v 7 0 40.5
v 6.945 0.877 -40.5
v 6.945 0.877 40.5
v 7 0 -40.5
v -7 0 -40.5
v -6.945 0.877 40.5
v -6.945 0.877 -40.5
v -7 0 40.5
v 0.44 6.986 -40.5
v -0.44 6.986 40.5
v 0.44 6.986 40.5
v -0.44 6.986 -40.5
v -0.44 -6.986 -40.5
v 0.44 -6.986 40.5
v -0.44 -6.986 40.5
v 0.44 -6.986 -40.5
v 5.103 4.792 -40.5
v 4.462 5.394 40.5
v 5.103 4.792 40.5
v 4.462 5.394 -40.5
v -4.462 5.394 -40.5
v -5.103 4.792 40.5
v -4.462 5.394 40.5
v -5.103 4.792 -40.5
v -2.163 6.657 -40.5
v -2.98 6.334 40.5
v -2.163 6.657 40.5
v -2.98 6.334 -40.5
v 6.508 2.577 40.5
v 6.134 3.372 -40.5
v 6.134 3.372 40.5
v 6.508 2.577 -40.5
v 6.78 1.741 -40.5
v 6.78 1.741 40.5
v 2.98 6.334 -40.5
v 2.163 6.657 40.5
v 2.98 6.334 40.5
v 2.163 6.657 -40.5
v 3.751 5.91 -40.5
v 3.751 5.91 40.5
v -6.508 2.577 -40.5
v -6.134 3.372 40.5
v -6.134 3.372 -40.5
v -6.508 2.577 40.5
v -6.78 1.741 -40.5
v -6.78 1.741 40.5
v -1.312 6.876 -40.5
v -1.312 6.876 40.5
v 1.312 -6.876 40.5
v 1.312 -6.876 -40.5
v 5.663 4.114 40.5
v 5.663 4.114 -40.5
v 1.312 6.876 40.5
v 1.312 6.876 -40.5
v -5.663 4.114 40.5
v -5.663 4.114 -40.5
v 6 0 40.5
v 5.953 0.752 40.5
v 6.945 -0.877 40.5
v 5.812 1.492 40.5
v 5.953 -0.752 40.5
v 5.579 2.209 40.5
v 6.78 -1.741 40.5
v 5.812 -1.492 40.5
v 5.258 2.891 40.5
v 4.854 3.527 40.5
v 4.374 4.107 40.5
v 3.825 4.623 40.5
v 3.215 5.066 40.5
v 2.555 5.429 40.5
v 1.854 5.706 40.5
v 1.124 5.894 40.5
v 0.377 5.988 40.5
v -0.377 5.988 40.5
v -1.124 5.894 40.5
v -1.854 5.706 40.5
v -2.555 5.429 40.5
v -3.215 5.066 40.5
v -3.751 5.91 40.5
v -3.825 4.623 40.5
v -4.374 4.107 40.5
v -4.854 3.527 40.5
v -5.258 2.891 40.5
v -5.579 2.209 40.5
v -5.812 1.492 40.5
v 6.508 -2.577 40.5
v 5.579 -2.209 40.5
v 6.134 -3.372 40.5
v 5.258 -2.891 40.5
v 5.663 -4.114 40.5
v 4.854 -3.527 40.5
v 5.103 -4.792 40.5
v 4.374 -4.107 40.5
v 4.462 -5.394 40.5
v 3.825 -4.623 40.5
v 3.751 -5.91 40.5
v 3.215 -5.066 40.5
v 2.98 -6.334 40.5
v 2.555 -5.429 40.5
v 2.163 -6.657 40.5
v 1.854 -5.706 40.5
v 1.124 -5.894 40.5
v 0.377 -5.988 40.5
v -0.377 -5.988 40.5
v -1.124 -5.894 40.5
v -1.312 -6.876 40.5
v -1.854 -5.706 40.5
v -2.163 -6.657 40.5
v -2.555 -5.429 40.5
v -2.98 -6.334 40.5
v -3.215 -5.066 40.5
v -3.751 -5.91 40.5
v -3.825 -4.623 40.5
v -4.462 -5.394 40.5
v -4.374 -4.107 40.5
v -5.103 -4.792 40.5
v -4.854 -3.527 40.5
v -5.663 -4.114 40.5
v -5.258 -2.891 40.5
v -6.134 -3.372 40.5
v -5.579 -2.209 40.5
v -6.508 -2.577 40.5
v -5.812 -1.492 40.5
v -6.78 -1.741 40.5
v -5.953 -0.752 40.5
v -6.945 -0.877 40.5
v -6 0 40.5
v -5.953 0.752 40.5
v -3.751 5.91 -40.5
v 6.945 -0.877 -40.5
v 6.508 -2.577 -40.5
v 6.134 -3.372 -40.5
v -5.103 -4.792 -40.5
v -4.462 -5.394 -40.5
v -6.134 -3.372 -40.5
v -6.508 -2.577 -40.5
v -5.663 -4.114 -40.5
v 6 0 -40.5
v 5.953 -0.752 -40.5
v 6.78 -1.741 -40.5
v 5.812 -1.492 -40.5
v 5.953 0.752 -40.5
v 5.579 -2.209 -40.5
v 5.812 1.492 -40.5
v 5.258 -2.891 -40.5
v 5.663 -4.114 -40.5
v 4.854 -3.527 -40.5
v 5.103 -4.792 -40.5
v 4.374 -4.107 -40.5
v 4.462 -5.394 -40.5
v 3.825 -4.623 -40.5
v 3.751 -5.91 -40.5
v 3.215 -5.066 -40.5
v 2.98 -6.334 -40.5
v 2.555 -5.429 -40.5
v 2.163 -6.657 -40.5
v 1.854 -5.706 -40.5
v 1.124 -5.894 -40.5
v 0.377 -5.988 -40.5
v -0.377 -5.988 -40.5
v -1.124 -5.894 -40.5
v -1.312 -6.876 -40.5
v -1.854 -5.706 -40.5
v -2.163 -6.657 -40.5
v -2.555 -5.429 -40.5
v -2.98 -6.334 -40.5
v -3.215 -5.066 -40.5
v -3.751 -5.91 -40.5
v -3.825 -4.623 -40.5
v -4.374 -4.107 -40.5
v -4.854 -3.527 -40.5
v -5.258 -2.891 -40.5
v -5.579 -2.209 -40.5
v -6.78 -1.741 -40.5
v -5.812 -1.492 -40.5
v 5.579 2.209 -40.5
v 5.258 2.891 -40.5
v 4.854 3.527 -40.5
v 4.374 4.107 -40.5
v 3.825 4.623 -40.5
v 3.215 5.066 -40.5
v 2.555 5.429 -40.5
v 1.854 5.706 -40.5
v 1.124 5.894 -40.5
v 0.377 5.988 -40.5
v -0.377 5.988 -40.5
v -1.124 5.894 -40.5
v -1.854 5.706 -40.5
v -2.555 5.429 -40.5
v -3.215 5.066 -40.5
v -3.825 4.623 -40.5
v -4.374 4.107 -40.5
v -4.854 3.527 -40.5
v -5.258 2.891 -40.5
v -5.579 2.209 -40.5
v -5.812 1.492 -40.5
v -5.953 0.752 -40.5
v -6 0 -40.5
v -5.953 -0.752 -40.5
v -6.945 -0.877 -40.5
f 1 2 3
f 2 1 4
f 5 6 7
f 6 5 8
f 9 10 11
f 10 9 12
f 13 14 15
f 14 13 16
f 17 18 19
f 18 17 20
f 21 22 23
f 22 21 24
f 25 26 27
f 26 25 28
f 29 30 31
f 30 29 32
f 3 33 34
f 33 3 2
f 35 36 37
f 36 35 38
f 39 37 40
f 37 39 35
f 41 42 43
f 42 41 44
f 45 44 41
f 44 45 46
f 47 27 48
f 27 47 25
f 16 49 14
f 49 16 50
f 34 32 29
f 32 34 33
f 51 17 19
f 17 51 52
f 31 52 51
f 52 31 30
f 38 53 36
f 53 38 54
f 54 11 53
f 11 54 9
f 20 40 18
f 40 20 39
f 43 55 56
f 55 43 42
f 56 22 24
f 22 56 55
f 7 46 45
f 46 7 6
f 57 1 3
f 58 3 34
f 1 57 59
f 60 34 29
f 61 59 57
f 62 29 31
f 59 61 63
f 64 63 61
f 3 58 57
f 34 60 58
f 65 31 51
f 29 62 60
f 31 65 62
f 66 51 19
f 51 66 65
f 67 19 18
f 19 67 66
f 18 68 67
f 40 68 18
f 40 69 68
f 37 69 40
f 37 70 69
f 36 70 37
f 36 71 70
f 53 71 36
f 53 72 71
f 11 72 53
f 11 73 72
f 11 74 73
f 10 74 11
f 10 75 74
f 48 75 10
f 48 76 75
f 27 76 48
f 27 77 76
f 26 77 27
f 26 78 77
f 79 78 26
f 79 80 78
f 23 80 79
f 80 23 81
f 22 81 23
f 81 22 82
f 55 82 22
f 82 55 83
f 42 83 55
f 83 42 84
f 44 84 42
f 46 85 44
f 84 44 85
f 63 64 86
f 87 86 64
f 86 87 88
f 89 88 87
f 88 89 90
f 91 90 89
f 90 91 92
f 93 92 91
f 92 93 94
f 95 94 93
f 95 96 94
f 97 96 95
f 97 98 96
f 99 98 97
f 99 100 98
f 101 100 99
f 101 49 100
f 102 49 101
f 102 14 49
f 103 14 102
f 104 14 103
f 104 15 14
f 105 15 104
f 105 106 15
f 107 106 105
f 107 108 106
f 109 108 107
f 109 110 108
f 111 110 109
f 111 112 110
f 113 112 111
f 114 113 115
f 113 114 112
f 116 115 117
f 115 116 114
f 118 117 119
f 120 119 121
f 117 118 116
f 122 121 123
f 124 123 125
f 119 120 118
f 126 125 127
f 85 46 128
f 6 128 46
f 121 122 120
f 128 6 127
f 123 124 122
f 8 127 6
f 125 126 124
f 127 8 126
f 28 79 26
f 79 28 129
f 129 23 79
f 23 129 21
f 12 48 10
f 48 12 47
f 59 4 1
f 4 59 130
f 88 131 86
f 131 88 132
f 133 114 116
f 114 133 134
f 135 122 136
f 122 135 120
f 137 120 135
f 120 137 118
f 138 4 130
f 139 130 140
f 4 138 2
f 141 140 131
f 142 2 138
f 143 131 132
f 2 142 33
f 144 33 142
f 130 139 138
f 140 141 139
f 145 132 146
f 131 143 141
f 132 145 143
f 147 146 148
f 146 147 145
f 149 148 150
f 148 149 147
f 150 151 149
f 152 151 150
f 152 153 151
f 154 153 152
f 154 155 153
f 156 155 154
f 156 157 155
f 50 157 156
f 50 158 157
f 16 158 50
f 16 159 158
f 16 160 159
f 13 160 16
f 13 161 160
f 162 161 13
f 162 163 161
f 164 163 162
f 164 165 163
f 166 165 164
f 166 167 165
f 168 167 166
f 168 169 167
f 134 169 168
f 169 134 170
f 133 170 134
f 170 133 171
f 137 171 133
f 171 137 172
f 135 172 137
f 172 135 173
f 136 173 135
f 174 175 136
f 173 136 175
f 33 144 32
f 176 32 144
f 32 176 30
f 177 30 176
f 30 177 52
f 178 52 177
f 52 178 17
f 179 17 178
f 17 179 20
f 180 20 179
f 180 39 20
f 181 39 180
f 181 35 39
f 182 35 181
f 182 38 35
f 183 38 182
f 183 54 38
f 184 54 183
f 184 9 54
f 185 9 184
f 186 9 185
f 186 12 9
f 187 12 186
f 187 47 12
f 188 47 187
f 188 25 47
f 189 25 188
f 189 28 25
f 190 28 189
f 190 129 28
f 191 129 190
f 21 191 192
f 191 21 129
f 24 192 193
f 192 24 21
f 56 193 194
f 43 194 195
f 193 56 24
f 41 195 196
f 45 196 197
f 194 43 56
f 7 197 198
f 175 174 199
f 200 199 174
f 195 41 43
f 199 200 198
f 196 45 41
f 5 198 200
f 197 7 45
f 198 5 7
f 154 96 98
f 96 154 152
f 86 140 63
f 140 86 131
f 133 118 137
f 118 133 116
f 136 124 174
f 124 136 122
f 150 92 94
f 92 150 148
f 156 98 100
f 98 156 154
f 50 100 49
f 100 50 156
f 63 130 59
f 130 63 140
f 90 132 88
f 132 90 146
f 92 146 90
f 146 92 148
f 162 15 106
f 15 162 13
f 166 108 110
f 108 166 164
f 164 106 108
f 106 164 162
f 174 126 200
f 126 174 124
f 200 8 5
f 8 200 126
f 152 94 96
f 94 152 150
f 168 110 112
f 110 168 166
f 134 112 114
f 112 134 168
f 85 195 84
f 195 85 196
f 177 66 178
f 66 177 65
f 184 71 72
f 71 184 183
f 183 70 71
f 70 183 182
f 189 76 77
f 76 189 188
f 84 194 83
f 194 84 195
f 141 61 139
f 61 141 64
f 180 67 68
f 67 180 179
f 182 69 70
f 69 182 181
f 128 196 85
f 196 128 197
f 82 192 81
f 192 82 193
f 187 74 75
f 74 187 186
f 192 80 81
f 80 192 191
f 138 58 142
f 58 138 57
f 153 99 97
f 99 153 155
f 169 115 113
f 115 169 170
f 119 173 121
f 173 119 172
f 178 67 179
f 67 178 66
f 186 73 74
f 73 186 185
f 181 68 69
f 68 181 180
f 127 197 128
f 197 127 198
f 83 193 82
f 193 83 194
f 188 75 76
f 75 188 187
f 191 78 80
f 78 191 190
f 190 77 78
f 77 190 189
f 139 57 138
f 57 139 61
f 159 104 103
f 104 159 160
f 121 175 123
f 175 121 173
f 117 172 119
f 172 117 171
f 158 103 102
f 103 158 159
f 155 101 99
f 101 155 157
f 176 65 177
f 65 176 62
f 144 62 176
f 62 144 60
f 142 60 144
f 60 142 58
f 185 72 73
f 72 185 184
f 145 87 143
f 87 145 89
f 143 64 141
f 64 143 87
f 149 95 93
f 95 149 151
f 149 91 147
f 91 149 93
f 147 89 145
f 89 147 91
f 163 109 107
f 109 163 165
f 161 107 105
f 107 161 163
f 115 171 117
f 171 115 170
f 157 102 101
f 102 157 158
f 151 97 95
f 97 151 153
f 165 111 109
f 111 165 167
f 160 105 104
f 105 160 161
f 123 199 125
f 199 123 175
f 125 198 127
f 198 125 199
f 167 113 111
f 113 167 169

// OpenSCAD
$fn = 50;


difference() {
	union() {
		translate(v = [0, 0, -40.5000000000]) {
			cylinder(h = 81, r = 7.0000000000);
		}
	}
	union() {
		translate(v = [0, 0, -100.0000000000]) {
			cylinder(h = 200, r = 6);
		}
	}
}
